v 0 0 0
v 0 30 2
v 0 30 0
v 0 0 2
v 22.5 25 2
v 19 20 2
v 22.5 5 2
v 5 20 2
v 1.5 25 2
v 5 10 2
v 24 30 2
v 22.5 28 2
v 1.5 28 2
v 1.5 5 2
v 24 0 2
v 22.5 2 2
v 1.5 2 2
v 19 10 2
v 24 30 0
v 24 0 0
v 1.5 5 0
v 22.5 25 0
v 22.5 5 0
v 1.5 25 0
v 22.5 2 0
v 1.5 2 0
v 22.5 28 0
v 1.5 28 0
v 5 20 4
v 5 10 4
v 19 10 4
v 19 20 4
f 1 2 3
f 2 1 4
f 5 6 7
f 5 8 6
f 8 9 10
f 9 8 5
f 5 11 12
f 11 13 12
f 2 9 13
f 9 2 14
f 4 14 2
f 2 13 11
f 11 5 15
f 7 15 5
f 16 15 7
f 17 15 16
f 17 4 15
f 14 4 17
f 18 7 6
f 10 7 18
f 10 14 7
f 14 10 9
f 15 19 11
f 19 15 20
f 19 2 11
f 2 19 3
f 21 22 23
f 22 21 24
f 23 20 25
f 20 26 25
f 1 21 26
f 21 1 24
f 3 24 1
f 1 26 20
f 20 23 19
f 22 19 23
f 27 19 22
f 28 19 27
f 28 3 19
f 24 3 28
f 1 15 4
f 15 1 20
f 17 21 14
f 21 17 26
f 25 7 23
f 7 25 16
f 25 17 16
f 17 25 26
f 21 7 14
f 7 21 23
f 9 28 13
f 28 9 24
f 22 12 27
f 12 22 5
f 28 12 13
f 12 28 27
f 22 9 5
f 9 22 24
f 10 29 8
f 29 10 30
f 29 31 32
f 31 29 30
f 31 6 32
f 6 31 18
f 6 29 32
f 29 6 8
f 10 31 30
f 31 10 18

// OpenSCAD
color("red") translate([1.5 + 2 + 1.5, 30/2-8 + 3, 2]) cube([17 - 3, 16 - 6, 2]);
difference(){
    cube([24, 30, 2]);
    translate([1.5, 2, 0]) cube([21, 3, 2]);
    translate([1.5, 2+3+20, 0]) cube([21, 3, 2]);
}
